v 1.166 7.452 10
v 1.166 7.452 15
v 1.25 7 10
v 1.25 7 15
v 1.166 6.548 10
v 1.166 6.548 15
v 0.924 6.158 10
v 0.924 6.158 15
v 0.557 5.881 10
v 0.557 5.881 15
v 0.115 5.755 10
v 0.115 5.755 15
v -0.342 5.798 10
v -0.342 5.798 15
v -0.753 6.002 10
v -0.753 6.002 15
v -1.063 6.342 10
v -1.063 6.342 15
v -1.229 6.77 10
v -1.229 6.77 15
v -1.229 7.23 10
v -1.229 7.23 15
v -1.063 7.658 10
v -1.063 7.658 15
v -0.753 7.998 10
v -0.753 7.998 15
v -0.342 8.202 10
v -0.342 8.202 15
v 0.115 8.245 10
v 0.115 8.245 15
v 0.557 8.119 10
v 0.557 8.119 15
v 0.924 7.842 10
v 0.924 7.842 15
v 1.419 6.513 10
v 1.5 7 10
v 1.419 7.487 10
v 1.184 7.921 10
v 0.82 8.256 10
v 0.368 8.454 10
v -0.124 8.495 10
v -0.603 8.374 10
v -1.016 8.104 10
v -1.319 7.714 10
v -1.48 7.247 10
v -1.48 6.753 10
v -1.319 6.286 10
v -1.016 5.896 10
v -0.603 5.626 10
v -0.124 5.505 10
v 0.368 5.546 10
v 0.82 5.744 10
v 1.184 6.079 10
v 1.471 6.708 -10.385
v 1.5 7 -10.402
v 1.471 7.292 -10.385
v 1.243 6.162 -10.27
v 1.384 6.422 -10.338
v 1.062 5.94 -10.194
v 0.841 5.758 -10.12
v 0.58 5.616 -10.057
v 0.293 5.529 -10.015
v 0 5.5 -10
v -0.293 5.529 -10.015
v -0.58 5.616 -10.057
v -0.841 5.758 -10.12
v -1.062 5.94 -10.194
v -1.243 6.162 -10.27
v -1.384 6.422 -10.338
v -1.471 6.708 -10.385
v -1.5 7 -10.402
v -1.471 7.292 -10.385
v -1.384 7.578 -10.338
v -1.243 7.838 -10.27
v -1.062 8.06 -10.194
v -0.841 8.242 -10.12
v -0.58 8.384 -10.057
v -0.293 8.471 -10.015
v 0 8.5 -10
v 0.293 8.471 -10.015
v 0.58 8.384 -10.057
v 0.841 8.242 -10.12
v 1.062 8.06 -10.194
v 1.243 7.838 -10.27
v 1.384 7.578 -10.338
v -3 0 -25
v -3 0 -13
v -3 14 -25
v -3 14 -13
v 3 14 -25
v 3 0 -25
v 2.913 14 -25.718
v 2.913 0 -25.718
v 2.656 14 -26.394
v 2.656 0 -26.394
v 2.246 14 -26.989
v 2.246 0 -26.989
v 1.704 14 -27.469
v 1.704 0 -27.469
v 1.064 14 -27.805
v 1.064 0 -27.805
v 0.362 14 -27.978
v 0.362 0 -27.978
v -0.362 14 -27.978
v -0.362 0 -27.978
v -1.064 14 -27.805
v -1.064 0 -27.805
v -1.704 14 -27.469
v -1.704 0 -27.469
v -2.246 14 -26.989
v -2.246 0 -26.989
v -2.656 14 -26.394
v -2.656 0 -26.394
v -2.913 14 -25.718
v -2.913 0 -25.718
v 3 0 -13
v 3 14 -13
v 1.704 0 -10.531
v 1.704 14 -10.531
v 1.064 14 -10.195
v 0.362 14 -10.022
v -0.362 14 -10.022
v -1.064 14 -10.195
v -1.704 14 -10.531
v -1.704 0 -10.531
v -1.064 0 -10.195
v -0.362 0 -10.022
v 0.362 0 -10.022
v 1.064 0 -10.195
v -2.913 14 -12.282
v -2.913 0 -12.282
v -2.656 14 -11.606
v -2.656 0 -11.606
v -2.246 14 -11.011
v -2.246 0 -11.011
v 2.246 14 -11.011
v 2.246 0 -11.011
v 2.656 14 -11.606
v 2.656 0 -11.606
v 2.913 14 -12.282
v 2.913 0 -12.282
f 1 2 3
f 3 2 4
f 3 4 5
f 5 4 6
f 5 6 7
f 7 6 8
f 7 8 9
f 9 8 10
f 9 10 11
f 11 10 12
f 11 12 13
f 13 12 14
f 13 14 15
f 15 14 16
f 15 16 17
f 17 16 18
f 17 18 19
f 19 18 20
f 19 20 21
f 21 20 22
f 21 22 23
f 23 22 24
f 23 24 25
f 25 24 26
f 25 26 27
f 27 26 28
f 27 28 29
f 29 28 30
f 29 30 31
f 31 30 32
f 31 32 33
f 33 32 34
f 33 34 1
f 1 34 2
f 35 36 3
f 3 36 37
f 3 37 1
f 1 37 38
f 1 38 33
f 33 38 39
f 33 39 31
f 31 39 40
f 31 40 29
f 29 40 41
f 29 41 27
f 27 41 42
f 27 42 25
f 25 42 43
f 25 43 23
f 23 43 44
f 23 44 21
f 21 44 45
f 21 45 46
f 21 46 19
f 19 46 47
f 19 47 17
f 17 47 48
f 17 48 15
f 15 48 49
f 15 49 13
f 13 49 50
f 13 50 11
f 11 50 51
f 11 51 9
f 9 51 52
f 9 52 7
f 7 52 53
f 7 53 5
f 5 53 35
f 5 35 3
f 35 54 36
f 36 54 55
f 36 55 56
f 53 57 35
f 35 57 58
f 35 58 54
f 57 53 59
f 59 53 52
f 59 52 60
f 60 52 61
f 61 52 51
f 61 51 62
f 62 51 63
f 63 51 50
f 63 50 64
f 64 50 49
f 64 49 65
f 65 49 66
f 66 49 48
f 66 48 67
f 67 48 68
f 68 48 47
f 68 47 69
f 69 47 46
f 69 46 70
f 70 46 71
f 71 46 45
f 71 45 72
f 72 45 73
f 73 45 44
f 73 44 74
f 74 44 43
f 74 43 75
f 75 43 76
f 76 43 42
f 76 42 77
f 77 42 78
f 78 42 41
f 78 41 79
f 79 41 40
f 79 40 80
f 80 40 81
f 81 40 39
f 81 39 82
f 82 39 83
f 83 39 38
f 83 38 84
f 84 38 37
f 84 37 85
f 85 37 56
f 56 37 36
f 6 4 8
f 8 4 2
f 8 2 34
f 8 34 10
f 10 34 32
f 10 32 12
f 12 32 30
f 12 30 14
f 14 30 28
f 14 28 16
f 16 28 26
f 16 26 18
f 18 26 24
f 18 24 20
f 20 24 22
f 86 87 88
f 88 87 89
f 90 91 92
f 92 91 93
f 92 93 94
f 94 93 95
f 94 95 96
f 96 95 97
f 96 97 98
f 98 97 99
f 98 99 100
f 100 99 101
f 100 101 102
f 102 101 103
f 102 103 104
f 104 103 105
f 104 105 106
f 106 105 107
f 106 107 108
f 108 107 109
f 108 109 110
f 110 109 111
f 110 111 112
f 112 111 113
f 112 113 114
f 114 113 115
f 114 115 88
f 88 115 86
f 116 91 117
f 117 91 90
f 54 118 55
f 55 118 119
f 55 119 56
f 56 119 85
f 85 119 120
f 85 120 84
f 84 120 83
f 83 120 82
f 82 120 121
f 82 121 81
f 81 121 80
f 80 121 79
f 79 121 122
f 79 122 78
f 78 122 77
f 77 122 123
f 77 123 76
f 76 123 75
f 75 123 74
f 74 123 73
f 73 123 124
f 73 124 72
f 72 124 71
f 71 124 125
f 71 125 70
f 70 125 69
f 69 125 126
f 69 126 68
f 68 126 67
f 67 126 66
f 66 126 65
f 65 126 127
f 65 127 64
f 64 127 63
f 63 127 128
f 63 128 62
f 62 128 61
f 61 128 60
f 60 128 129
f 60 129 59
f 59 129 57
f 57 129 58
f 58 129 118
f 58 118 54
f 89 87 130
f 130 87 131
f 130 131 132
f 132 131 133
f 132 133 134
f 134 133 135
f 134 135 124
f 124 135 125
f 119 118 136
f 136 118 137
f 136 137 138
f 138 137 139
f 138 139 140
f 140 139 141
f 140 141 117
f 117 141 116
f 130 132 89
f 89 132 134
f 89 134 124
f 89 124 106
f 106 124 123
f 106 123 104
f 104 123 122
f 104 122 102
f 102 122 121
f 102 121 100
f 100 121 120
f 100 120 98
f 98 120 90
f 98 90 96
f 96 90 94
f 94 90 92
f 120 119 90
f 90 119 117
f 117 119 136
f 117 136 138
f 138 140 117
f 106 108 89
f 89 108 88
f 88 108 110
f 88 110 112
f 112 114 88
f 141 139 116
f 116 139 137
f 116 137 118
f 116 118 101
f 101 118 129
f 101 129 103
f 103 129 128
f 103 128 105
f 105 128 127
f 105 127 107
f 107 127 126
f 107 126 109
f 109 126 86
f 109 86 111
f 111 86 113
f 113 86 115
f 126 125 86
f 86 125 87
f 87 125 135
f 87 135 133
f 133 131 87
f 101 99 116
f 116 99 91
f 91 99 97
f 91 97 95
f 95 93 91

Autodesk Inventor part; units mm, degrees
ref_plane "YZ Plane" through (0, 0, 0) normal (1, 0, 0) x (0, 1, 0)
ref_plane "XZ Plane" through (0, 0, 0) normal (0, 1, 0) x (-1, 0, 0)
sketch "Sketch1" plane through (0, 0, 0) normal (0, 1, 0) x (-1, 0, 0)
  line L0 (0, 25) -> (0, 13) construction
  line L1 (3, 25) -> (3, 13)
  line L2 (-3, 13) -> (-3, 25)
  arc A0 (3, 25) -> (-3, 25) centre (0, 25) ccw
  arc A1 (-3, 13) -> (3, 13) centre (0, 13) ccw
  line L3 (0, 30.2784) -> (0, -34.8413) construction
  line L4 (24.1166, 0) -> (-17.2731, 0) construction
  line L5 (0, 10) -> (0, -10)
  line L6 (3, -25) -> (3, -13)
  line L7 (-3, -13) -> (-3, -25)
  arc A2 (-3, -25) -> (3, -25) centre (0, -25) ccw
  arc A3 (3, -13) -> (-3, -13) centre (0, -13) ccw
  point P0 (0, 0)
  point P1 (0, 19)
  dimension "d0" = 12
  dimension "d1" = 3
  dimension "d2" = 20
extrude "Extrusion1" add sketch "Sketch1" along normal blind 14 contours A3 L6 A2 L7
ref_plane "Work Plane1" through (0, 14, -10) normal (0, 0, 1) x (1, 0, 0)
sketch "Sketch2" plane through (0, 14, -10) normal (0, 0, 1) x (1, 0, 0)
  circle A0 centre (0, -7) radius 1.5
  line L0 (3, 0) -> (-3, 0) projected
  line L1 (3, -14) -> (-3, -14) projected
  line L2 (3, -14) -> (3, 0) projected
  line L3 (-3, -14) -> (-3, 0) projected
  point P0 (0, -14)
  dimension "d5" = 3
  dimension "d6" = 7
  dimension "d7" = 3
extrude "Extrusion2" add sketch "Sketch2" along normal blind 25 and the other way blind 2 contours A0
sketch "Sketch3" plane through (0, 7, 15) normal (0, 0, 1) x (1, 0, 0)
  circle A0 centre (0, 0) radius 1.5
  circle A1 centre (0, 0) radius 1.5 projected
  circle A2 centre (0, 0) radius 1.25
  point P0 (0, -7)
  dimension "d12" = 2.5
extrude "Extrusion3" cut sketch "Sketch3" against normal blind 5
properties part number "paletas"
